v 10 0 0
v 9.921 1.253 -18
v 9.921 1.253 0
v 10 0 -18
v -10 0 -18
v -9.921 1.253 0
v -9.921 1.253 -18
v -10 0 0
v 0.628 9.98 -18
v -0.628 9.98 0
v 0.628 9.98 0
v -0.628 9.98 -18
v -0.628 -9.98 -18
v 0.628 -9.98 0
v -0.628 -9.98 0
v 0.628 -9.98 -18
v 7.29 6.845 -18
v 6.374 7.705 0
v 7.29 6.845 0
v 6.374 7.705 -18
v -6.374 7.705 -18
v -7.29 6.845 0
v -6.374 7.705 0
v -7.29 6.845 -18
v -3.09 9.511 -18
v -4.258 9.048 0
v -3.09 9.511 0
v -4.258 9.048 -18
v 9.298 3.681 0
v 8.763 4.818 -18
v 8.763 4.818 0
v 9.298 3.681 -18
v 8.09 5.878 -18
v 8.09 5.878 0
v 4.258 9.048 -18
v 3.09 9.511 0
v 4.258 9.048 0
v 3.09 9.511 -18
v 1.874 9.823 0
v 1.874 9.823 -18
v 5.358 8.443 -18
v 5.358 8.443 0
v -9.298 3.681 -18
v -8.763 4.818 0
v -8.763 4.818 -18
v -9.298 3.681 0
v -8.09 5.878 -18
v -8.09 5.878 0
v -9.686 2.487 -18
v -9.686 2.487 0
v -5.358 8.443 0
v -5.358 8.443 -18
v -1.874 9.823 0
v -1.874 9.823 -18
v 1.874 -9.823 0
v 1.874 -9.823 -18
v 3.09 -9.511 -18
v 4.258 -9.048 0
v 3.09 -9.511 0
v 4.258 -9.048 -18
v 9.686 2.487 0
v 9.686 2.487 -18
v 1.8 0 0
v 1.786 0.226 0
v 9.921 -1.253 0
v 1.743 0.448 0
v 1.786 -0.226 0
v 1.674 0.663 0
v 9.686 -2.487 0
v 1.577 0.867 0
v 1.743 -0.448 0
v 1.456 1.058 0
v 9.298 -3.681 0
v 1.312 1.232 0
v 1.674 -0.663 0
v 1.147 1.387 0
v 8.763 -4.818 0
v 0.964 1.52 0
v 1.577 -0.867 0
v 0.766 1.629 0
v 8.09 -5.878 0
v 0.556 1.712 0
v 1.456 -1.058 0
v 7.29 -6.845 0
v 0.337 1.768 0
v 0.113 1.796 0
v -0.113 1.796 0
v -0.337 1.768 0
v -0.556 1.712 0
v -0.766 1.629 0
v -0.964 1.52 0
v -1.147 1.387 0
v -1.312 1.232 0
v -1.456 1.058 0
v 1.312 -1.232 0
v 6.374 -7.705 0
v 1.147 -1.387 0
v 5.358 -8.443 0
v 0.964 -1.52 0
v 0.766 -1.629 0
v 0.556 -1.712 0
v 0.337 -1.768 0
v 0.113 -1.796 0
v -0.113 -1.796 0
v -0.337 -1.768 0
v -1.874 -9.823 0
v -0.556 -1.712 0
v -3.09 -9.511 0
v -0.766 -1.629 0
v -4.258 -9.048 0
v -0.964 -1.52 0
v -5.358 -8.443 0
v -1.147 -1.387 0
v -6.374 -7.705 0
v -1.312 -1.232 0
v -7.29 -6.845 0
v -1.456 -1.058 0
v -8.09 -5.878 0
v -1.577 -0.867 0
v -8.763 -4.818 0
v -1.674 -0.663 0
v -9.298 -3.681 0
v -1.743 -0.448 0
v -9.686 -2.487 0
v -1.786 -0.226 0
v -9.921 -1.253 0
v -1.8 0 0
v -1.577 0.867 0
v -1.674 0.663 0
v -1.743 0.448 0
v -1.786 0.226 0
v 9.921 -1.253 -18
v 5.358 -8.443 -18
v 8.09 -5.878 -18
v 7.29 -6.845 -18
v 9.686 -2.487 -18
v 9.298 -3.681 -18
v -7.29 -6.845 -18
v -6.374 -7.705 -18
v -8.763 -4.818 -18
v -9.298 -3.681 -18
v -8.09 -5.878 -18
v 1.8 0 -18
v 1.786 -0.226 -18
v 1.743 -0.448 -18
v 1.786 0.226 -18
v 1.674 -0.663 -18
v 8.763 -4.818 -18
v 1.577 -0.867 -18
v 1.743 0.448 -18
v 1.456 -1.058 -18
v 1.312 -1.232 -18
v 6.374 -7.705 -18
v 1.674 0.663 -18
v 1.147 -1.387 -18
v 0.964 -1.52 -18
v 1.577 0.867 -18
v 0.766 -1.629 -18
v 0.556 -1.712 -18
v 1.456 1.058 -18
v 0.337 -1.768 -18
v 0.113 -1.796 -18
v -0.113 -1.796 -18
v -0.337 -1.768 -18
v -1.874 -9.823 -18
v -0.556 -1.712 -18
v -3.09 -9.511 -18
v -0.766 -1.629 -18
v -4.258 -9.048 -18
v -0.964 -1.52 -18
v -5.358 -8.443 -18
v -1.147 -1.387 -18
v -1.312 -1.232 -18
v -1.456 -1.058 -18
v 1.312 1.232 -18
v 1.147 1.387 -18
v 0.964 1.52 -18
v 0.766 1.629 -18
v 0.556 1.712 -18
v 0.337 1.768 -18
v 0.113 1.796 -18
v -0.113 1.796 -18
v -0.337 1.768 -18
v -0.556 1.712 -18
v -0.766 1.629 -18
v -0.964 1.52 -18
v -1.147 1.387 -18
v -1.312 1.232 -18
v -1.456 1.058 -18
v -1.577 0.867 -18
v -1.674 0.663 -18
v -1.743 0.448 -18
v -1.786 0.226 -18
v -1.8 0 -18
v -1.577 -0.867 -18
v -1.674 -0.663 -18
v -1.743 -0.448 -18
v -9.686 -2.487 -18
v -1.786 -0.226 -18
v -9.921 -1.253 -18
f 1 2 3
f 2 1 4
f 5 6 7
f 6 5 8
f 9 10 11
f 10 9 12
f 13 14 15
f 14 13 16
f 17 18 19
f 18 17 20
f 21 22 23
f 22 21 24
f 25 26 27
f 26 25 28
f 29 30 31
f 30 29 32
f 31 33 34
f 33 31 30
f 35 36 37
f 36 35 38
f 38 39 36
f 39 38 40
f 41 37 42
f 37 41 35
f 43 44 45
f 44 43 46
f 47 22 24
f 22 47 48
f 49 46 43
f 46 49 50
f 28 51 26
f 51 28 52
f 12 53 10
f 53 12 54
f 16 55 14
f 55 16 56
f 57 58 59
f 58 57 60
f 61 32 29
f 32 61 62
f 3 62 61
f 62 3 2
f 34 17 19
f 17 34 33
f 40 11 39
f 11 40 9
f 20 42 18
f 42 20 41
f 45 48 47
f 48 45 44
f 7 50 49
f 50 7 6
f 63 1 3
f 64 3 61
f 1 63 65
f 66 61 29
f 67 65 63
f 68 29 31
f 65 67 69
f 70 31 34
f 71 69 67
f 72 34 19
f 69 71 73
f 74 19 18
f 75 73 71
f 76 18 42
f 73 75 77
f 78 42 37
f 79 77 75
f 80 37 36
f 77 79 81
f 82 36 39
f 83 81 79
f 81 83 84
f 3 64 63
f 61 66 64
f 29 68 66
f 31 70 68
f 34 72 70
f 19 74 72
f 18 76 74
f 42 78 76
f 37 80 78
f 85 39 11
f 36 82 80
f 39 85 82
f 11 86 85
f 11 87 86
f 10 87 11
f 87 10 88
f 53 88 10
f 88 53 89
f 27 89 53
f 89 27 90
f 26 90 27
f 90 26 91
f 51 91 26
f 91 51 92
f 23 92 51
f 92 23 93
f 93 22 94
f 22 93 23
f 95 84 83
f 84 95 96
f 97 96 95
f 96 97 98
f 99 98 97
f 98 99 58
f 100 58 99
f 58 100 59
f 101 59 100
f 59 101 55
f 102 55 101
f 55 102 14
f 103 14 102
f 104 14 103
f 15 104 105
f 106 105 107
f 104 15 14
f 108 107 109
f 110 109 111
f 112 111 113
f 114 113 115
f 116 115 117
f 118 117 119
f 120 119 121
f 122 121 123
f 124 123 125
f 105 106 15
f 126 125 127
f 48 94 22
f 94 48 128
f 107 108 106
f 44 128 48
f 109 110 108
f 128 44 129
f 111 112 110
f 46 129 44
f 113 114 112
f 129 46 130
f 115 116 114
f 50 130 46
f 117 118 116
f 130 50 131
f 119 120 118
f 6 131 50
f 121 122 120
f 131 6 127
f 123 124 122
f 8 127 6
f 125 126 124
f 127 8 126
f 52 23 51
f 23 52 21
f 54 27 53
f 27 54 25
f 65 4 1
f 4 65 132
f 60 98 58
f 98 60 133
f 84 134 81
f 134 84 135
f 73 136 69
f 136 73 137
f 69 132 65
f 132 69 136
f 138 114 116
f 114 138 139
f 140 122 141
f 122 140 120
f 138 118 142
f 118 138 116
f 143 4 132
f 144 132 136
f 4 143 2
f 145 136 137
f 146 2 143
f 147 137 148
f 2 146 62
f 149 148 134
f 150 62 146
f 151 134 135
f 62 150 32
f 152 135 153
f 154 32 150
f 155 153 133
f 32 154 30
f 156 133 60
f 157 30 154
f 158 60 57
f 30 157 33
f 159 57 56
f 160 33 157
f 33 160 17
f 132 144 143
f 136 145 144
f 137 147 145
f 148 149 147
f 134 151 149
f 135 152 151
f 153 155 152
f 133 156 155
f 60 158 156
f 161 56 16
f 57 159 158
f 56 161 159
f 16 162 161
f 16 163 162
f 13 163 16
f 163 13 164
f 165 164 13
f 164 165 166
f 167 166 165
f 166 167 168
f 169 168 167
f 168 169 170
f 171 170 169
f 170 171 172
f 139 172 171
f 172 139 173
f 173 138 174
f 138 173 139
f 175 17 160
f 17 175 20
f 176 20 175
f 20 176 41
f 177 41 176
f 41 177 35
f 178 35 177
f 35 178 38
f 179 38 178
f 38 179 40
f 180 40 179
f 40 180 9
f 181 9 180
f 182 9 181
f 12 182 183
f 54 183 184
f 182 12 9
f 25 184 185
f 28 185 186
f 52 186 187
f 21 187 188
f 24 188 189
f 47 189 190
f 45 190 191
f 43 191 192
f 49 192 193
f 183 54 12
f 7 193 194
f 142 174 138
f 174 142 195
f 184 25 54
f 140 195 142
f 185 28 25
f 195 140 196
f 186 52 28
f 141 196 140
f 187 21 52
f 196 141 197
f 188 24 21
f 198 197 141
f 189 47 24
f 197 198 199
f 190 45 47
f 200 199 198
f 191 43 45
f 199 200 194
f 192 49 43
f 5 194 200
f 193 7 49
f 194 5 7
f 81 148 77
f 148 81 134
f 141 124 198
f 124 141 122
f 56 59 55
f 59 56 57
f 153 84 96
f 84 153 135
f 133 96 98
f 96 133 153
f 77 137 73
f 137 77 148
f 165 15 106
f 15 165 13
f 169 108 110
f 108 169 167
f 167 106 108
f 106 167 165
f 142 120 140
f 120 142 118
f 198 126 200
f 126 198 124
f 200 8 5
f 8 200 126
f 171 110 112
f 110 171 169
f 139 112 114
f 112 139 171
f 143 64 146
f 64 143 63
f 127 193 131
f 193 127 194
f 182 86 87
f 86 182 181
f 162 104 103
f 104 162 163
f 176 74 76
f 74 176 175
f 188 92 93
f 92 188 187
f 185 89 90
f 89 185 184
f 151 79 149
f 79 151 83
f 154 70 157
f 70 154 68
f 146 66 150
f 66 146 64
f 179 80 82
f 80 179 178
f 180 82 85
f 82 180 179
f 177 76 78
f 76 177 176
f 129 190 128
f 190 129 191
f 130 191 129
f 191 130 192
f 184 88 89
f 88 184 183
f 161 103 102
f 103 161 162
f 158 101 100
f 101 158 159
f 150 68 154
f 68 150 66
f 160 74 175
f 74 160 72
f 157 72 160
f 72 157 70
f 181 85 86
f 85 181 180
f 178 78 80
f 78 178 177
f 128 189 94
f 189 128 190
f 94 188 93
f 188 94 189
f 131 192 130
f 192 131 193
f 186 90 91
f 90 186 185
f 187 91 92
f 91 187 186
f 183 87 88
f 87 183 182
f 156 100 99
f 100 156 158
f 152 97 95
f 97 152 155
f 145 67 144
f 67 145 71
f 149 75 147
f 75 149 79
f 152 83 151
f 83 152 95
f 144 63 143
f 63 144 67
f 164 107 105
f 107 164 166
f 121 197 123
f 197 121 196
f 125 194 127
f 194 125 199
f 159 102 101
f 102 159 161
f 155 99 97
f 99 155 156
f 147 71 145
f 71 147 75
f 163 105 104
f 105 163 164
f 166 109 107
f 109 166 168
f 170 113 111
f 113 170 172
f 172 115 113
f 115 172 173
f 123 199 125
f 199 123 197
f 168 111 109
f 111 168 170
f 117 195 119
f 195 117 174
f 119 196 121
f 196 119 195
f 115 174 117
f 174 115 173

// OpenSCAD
$fn = 50;


difference() {
	union() {
		translate(v = [0, 0, -18.0000000000]) {
			cylinder(h = 18, r = 10.0000000000);
		}
		cylinder(h = 0, r = 13.0000000000);
	}
	union() {
		#translate(v = [0, 0, -18]) {
			cylinder(h = 18, r = 1.8000000000);
		}
	}
}
